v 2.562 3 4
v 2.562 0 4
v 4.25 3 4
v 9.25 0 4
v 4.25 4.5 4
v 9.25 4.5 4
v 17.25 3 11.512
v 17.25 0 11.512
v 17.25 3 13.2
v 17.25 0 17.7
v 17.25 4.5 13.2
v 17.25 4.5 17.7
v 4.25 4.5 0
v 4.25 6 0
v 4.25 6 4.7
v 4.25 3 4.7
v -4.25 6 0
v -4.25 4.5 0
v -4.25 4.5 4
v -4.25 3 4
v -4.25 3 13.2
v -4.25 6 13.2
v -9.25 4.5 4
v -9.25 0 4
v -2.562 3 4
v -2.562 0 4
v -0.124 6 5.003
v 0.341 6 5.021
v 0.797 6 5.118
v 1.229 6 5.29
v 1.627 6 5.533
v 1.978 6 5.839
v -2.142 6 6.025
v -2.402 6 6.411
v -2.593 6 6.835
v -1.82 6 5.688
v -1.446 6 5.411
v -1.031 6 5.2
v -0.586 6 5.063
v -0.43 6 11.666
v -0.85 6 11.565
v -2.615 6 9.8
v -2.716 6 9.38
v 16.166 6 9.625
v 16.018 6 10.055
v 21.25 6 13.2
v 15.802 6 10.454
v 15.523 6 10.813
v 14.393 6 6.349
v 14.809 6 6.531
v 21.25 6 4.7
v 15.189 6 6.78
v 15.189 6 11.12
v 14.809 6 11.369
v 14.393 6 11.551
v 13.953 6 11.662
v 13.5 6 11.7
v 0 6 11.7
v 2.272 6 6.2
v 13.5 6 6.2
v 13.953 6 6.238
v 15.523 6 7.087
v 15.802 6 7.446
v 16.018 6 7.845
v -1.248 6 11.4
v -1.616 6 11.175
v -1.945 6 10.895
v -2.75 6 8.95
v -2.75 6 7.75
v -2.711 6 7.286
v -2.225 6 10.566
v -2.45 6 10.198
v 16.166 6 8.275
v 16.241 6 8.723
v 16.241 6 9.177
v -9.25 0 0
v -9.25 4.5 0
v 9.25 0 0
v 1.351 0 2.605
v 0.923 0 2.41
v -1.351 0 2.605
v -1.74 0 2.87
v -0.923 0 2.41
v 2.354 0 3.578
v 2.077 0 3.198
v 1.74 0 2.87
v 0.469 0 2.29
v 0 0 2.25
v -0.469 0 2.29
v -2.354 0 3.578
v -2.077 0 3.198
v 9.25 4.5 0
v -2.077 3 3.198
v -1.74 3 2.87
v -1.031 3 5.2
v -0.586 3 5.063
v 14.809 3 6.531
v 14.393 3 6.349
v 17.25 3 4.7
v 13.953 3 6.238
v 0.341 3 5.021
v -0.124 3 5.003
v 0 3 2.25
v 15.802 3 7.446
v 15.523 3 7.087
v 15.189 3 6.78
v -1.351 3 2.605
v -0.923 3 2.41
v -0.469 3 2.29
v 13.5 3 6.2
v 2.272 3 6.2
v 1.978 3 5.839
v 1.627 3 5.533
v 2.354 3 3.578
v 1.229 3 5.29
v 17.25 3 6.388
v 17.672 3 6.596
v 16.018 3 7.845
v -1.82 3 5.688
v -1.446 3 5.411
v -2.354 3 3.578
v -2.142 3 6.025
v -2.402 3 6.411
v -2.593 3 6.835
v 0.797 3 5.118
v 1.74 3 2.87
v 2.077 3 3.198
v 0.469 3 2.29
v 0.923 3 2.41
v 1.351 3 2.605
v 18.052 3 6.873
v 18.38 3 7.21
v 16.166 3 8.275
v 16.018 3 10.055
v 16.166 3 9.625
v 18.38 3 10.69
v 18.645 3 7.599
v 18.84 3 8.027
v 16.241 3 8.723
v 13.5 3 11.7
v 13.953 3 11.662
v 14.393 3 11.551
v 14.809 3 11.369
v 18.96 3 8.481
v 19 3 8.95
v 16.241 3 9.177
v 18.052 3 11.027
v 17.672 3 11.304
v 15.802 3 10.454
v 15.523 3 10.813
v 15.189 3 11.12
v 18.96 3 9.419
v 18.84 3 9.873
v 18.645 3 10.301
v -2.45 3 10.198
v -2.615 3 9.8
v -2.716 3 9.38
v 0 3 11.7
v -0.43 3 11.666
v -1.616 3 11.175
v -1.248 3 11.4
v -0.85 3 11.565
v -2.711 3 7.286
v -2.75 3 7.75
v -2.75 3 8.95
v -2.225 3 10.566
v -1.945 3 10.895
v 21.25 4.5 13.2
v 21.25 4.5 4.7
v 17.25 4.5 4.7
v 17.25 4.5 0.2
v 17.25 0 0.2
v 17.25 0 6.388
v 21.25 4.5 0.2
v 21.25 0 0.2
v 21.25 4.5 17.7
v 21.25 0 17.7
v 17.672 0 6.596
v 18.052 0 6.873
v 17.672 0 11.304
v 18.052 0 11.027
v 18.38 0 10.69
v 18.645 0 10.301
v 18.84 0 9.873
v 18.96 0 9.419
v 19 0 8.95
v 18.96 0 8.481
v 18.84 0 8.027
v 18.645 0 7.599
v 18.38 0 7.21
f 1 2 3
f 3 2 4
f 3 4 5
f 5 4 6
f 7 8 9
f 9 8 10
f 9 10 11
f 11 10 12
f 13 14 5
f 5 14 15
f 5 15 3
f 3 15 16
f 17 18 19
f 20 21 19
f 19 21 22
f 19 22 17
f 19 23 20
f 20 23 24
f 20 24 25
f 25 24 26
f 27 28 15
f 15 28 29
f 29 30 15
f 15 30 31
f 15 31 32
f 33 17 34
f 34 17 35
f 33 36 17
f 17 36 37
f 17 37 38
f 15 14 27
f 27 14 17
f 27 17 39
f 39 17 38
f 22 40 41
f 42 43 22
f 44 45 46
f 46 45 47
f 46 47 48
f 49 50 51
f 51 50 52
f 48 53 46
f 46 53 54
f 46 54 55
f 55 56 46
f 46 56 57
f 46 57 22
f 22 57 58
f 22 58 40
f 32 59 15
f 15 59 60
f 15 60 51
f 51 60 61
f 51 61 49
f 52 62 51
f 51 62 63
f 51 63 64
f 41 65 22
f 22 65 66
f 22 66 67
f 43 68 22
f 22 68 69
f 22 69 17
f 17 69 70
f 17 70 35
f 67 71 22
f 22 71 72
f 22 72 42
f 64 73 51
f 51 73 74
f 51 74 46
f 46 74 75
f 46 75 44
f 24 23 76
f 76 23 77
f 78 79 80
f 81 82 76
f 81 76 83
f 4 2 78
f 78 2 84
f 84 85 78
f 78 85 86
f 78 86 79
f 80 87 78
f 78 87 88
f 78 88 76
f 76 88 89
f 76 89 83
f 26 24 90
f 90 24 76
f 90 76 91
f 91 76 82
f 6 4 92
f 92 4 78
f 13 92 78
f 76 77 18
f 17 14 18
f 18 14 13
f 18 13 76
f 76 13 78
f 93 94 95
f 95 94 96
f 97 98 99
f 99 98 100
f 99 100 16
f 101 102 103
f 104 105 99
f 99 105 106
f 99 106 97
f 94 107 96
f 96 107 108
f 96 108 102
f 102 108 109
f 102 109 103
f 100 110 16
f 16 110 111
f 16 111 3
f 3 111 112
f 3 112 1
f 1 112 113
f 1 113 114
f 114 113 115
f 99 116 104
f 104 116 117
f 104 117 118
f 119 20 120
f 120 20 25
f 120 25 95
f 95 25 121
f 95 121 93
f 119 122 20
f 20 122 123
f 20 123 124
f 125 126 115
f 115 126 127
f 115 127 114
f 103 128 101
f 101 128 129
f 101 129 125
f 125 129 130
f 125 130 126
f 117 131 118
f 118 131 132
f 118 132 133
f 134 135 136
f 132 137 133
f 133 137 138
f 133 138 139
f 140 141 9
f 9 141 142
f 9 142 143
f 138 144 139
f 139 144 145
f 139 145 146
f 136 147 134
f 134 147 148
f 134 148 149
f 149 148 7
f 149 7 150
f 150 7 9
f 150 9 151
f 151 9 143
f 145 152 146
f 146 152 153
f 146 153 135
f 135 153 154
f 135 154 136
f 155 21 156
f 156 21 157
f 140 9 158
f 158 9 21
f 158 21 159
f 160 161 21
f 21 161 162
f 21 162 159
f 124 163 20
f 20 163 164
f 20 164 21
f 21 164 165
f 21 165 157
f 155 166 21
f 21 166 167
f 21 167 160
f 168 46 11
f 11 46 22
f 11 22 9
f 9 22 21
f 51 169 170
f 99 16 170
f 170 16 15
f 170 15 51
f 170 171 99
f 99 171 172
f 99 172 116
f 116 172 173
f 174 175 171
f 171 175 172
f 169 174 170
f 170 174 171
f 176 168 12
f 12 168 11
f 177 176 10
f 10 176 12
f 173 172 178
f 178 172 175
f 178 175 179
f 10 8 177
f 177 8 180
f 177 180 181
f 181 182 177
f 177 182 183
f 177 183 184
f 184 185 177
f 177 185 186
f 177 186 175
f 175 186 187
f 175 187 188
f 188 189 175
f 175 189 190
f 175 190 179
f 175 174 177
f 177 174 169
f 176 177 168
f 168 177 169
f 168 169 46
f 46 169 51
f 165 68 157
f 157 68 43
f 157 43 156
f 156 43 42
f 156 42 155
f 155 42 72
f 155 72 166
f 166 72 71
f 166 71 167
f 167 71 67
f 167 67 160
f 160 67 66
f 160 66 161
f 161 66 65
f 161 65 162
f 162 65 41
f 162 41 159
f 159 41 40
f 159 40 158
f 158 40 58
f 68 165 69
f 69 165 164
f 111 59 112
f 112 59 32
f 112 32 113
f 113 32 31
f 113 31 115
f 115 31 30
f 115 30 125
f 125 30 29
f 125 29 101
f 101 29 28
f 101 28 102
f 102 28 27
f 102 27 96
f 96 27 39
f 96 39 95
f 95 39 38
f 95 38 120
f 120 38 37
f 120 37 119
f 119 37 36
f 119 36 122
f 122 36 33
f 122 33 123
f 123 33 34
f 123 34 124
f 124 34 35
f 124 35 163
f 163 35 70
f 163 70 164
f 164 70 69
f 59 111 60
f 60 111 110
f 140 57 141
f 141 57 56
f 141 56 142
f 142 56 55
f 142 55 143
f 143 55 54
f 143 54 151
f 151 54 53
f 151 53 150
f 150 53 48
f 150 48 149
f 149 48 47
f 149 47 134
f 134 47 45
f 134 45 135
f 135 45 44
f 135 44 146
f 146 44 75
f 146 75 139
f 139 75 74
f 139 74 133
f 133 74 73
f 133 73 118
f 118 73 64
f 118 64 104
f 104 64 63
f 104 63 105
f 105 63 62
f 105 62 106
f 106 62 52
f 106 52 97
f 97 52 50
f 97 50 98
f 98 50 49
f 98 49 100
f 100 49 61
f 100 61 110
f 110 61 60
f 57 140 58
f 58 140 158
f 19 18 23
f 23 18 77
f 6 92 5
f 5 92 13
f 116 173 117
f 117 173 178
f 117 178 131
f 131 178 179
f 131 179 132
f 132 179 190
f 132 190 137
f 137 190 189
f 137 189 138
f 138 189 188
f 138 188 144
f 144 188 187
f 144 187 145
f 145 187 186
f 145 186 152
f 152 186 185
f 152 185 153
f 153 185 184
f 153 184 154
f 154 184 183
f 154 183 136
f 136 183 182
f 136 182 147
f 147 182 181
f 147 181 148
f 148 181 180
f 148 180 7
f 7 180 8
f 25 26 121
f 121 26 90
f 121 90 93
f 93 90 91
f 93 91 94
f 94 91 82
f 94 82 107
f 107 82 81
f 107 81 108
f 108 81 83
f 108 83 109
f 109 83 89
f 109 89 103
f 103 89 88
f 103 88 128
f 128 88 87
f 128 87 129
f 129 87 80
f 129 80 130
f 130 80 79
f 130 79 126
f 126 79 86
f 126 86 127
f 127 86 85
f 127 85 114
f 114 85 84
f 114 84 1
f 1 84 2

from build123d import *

# Parameters (mm, degrees)
RESSALTO_EXTRUS_O1_DEPTH = 4
ESBO_O3_W                = 8.5
ESBO_O3_H                = 3
RESSALTO_EXTRUS_O2_DEPTH = 9.2
ESBO_O4_W                = 8.5
ESBO_O4_H                = 3
RESSALTO_EXTRUS_O3_DEPTH = 13
RESSALTO_EXTRUS_O6_DEPTH = 4
CORTE_EXTRUS_O3_DEPTH    = 7
ESBO_O9_W                = 5
ESBO_O9_H                = 4
RESSALTO_EXTRUS_O7_DEPTH = 1.5
ESBO_O10_R               = 2.75
CORTE_EXTRUS_O4_DEPTH    = 3


with BuildPart() as part:
    # Esboço1 → Ressalto-extrusão1 (new body)
    with BuildSketch(Plane.XY):
        Polygon((9.25, 0), (-9.25, 0), (-9.25, 3), (-4.25, 3), (-4.25, 6), (4.25, 6), (4.25, 3), (9.25, 3), align=None)
    extrude(amount=RESSALTO_EXTRUS_O1_DEPTH)

    # Esboço3 → Ressalto-extrusão2 (add)
    with BuildSketch(Plane.XY.offset(4)):
        with Locations((0, 4.5)):
            Rectangle(ESBO_O3_W, ESBO_O3_H)
    extrude(amount=RESSALTO_EXTRUS_O2_DEPTH)

    # Esboço4 → Ressalto-extrusão3 (add)
    with BuildSketch(Plane(origin=(4.25, 0, 0), x_dir=(0, 0, -1), z_dir=(1, 0, 0))):
        with Locations((-8.95, 4.5)):
            Rectangle(ESBO_O4_W, ESBO_O4_H)
    extrude(amount=RESSALTO_EXTRUS_O3_DEPTH)

    # Esboço5 → Ressalto-extrusão6 (add)
    with BuildSketch(Plane(origin=(17.25, 0, 0), x_dir=(0, 0, -1), z_dir=(1, 0, 0))):
        Polygon((-17.7, 0), (-17.7, 4.5), (-13.2, 4.5), (-13.2, 6), (-4.7, 6), (-4.7, 4.5), (-0.2, 4.5), (-0.2, 0), align=None)
    extrude(amount=RESSALTO_EXTRUS_O6_DEPTH)

    # Esboço8 → Corte-extrusão3 (cut, through all)
    with BuildSketch(Plane(origin=(0, 6, 0), x_dir=(1, 0, 0), z_dir=(0, 1, 0))):
        with BuildLine():
            Line((13.5, -6.2), (2.271563338, -6.2))
            ThreePointArc((2.271563338, -6.2), (-0.81107978, -5.122330007), (-2.75, -7.75))
            Line((-2.75, -7.75), (-2.75, -8.95))
            ThreePointArc((-2.75, -8.95), (-1.944543648, -10.894543648), (0, -11.7))
            Line((0, -11.7), (13.5, -11.7))
            ThreePointArc((13.5, -11.7), (16.25, -8.95), (13.5, -6.2))
        make_face()
    extrude(amount=-CORTE_EXTRUS_O3_DEPTH, mode=Mode.SUBTRACT)

    # Esboço9 → Ressalto-extrusão7 (add)
    with BuildSketch(Plane(origin=(0, 3, 0), x_dir=(1, 0, 0), z_dir=(0, 1, 0))):
        with Locations((-6.75, -2)):
            Rectangle(ESBO_O9_W, ESBO_O9_H)
        with Locations((6.75, -2)):
            Rectangle(ESBO_O9_W, ESBO_O9_H)
    extrude(amount=RESSALTO_EXTRUS_O7_DEPTH)

    # Esboço10 → Corte-extrusão4 (cut)
    with BuildSketch(Plane.XZ):
        with Locations((0, 5)):
            Circle(ESBO_O10_R)
        with Locations((16.25, 8.95)):
            Circle(ESBO_O10_R)
    extrude(amount=-CORTE_EXTRUS_O4_DEPTH, mode=Mode.SUBTRACT)


solid = part.part
